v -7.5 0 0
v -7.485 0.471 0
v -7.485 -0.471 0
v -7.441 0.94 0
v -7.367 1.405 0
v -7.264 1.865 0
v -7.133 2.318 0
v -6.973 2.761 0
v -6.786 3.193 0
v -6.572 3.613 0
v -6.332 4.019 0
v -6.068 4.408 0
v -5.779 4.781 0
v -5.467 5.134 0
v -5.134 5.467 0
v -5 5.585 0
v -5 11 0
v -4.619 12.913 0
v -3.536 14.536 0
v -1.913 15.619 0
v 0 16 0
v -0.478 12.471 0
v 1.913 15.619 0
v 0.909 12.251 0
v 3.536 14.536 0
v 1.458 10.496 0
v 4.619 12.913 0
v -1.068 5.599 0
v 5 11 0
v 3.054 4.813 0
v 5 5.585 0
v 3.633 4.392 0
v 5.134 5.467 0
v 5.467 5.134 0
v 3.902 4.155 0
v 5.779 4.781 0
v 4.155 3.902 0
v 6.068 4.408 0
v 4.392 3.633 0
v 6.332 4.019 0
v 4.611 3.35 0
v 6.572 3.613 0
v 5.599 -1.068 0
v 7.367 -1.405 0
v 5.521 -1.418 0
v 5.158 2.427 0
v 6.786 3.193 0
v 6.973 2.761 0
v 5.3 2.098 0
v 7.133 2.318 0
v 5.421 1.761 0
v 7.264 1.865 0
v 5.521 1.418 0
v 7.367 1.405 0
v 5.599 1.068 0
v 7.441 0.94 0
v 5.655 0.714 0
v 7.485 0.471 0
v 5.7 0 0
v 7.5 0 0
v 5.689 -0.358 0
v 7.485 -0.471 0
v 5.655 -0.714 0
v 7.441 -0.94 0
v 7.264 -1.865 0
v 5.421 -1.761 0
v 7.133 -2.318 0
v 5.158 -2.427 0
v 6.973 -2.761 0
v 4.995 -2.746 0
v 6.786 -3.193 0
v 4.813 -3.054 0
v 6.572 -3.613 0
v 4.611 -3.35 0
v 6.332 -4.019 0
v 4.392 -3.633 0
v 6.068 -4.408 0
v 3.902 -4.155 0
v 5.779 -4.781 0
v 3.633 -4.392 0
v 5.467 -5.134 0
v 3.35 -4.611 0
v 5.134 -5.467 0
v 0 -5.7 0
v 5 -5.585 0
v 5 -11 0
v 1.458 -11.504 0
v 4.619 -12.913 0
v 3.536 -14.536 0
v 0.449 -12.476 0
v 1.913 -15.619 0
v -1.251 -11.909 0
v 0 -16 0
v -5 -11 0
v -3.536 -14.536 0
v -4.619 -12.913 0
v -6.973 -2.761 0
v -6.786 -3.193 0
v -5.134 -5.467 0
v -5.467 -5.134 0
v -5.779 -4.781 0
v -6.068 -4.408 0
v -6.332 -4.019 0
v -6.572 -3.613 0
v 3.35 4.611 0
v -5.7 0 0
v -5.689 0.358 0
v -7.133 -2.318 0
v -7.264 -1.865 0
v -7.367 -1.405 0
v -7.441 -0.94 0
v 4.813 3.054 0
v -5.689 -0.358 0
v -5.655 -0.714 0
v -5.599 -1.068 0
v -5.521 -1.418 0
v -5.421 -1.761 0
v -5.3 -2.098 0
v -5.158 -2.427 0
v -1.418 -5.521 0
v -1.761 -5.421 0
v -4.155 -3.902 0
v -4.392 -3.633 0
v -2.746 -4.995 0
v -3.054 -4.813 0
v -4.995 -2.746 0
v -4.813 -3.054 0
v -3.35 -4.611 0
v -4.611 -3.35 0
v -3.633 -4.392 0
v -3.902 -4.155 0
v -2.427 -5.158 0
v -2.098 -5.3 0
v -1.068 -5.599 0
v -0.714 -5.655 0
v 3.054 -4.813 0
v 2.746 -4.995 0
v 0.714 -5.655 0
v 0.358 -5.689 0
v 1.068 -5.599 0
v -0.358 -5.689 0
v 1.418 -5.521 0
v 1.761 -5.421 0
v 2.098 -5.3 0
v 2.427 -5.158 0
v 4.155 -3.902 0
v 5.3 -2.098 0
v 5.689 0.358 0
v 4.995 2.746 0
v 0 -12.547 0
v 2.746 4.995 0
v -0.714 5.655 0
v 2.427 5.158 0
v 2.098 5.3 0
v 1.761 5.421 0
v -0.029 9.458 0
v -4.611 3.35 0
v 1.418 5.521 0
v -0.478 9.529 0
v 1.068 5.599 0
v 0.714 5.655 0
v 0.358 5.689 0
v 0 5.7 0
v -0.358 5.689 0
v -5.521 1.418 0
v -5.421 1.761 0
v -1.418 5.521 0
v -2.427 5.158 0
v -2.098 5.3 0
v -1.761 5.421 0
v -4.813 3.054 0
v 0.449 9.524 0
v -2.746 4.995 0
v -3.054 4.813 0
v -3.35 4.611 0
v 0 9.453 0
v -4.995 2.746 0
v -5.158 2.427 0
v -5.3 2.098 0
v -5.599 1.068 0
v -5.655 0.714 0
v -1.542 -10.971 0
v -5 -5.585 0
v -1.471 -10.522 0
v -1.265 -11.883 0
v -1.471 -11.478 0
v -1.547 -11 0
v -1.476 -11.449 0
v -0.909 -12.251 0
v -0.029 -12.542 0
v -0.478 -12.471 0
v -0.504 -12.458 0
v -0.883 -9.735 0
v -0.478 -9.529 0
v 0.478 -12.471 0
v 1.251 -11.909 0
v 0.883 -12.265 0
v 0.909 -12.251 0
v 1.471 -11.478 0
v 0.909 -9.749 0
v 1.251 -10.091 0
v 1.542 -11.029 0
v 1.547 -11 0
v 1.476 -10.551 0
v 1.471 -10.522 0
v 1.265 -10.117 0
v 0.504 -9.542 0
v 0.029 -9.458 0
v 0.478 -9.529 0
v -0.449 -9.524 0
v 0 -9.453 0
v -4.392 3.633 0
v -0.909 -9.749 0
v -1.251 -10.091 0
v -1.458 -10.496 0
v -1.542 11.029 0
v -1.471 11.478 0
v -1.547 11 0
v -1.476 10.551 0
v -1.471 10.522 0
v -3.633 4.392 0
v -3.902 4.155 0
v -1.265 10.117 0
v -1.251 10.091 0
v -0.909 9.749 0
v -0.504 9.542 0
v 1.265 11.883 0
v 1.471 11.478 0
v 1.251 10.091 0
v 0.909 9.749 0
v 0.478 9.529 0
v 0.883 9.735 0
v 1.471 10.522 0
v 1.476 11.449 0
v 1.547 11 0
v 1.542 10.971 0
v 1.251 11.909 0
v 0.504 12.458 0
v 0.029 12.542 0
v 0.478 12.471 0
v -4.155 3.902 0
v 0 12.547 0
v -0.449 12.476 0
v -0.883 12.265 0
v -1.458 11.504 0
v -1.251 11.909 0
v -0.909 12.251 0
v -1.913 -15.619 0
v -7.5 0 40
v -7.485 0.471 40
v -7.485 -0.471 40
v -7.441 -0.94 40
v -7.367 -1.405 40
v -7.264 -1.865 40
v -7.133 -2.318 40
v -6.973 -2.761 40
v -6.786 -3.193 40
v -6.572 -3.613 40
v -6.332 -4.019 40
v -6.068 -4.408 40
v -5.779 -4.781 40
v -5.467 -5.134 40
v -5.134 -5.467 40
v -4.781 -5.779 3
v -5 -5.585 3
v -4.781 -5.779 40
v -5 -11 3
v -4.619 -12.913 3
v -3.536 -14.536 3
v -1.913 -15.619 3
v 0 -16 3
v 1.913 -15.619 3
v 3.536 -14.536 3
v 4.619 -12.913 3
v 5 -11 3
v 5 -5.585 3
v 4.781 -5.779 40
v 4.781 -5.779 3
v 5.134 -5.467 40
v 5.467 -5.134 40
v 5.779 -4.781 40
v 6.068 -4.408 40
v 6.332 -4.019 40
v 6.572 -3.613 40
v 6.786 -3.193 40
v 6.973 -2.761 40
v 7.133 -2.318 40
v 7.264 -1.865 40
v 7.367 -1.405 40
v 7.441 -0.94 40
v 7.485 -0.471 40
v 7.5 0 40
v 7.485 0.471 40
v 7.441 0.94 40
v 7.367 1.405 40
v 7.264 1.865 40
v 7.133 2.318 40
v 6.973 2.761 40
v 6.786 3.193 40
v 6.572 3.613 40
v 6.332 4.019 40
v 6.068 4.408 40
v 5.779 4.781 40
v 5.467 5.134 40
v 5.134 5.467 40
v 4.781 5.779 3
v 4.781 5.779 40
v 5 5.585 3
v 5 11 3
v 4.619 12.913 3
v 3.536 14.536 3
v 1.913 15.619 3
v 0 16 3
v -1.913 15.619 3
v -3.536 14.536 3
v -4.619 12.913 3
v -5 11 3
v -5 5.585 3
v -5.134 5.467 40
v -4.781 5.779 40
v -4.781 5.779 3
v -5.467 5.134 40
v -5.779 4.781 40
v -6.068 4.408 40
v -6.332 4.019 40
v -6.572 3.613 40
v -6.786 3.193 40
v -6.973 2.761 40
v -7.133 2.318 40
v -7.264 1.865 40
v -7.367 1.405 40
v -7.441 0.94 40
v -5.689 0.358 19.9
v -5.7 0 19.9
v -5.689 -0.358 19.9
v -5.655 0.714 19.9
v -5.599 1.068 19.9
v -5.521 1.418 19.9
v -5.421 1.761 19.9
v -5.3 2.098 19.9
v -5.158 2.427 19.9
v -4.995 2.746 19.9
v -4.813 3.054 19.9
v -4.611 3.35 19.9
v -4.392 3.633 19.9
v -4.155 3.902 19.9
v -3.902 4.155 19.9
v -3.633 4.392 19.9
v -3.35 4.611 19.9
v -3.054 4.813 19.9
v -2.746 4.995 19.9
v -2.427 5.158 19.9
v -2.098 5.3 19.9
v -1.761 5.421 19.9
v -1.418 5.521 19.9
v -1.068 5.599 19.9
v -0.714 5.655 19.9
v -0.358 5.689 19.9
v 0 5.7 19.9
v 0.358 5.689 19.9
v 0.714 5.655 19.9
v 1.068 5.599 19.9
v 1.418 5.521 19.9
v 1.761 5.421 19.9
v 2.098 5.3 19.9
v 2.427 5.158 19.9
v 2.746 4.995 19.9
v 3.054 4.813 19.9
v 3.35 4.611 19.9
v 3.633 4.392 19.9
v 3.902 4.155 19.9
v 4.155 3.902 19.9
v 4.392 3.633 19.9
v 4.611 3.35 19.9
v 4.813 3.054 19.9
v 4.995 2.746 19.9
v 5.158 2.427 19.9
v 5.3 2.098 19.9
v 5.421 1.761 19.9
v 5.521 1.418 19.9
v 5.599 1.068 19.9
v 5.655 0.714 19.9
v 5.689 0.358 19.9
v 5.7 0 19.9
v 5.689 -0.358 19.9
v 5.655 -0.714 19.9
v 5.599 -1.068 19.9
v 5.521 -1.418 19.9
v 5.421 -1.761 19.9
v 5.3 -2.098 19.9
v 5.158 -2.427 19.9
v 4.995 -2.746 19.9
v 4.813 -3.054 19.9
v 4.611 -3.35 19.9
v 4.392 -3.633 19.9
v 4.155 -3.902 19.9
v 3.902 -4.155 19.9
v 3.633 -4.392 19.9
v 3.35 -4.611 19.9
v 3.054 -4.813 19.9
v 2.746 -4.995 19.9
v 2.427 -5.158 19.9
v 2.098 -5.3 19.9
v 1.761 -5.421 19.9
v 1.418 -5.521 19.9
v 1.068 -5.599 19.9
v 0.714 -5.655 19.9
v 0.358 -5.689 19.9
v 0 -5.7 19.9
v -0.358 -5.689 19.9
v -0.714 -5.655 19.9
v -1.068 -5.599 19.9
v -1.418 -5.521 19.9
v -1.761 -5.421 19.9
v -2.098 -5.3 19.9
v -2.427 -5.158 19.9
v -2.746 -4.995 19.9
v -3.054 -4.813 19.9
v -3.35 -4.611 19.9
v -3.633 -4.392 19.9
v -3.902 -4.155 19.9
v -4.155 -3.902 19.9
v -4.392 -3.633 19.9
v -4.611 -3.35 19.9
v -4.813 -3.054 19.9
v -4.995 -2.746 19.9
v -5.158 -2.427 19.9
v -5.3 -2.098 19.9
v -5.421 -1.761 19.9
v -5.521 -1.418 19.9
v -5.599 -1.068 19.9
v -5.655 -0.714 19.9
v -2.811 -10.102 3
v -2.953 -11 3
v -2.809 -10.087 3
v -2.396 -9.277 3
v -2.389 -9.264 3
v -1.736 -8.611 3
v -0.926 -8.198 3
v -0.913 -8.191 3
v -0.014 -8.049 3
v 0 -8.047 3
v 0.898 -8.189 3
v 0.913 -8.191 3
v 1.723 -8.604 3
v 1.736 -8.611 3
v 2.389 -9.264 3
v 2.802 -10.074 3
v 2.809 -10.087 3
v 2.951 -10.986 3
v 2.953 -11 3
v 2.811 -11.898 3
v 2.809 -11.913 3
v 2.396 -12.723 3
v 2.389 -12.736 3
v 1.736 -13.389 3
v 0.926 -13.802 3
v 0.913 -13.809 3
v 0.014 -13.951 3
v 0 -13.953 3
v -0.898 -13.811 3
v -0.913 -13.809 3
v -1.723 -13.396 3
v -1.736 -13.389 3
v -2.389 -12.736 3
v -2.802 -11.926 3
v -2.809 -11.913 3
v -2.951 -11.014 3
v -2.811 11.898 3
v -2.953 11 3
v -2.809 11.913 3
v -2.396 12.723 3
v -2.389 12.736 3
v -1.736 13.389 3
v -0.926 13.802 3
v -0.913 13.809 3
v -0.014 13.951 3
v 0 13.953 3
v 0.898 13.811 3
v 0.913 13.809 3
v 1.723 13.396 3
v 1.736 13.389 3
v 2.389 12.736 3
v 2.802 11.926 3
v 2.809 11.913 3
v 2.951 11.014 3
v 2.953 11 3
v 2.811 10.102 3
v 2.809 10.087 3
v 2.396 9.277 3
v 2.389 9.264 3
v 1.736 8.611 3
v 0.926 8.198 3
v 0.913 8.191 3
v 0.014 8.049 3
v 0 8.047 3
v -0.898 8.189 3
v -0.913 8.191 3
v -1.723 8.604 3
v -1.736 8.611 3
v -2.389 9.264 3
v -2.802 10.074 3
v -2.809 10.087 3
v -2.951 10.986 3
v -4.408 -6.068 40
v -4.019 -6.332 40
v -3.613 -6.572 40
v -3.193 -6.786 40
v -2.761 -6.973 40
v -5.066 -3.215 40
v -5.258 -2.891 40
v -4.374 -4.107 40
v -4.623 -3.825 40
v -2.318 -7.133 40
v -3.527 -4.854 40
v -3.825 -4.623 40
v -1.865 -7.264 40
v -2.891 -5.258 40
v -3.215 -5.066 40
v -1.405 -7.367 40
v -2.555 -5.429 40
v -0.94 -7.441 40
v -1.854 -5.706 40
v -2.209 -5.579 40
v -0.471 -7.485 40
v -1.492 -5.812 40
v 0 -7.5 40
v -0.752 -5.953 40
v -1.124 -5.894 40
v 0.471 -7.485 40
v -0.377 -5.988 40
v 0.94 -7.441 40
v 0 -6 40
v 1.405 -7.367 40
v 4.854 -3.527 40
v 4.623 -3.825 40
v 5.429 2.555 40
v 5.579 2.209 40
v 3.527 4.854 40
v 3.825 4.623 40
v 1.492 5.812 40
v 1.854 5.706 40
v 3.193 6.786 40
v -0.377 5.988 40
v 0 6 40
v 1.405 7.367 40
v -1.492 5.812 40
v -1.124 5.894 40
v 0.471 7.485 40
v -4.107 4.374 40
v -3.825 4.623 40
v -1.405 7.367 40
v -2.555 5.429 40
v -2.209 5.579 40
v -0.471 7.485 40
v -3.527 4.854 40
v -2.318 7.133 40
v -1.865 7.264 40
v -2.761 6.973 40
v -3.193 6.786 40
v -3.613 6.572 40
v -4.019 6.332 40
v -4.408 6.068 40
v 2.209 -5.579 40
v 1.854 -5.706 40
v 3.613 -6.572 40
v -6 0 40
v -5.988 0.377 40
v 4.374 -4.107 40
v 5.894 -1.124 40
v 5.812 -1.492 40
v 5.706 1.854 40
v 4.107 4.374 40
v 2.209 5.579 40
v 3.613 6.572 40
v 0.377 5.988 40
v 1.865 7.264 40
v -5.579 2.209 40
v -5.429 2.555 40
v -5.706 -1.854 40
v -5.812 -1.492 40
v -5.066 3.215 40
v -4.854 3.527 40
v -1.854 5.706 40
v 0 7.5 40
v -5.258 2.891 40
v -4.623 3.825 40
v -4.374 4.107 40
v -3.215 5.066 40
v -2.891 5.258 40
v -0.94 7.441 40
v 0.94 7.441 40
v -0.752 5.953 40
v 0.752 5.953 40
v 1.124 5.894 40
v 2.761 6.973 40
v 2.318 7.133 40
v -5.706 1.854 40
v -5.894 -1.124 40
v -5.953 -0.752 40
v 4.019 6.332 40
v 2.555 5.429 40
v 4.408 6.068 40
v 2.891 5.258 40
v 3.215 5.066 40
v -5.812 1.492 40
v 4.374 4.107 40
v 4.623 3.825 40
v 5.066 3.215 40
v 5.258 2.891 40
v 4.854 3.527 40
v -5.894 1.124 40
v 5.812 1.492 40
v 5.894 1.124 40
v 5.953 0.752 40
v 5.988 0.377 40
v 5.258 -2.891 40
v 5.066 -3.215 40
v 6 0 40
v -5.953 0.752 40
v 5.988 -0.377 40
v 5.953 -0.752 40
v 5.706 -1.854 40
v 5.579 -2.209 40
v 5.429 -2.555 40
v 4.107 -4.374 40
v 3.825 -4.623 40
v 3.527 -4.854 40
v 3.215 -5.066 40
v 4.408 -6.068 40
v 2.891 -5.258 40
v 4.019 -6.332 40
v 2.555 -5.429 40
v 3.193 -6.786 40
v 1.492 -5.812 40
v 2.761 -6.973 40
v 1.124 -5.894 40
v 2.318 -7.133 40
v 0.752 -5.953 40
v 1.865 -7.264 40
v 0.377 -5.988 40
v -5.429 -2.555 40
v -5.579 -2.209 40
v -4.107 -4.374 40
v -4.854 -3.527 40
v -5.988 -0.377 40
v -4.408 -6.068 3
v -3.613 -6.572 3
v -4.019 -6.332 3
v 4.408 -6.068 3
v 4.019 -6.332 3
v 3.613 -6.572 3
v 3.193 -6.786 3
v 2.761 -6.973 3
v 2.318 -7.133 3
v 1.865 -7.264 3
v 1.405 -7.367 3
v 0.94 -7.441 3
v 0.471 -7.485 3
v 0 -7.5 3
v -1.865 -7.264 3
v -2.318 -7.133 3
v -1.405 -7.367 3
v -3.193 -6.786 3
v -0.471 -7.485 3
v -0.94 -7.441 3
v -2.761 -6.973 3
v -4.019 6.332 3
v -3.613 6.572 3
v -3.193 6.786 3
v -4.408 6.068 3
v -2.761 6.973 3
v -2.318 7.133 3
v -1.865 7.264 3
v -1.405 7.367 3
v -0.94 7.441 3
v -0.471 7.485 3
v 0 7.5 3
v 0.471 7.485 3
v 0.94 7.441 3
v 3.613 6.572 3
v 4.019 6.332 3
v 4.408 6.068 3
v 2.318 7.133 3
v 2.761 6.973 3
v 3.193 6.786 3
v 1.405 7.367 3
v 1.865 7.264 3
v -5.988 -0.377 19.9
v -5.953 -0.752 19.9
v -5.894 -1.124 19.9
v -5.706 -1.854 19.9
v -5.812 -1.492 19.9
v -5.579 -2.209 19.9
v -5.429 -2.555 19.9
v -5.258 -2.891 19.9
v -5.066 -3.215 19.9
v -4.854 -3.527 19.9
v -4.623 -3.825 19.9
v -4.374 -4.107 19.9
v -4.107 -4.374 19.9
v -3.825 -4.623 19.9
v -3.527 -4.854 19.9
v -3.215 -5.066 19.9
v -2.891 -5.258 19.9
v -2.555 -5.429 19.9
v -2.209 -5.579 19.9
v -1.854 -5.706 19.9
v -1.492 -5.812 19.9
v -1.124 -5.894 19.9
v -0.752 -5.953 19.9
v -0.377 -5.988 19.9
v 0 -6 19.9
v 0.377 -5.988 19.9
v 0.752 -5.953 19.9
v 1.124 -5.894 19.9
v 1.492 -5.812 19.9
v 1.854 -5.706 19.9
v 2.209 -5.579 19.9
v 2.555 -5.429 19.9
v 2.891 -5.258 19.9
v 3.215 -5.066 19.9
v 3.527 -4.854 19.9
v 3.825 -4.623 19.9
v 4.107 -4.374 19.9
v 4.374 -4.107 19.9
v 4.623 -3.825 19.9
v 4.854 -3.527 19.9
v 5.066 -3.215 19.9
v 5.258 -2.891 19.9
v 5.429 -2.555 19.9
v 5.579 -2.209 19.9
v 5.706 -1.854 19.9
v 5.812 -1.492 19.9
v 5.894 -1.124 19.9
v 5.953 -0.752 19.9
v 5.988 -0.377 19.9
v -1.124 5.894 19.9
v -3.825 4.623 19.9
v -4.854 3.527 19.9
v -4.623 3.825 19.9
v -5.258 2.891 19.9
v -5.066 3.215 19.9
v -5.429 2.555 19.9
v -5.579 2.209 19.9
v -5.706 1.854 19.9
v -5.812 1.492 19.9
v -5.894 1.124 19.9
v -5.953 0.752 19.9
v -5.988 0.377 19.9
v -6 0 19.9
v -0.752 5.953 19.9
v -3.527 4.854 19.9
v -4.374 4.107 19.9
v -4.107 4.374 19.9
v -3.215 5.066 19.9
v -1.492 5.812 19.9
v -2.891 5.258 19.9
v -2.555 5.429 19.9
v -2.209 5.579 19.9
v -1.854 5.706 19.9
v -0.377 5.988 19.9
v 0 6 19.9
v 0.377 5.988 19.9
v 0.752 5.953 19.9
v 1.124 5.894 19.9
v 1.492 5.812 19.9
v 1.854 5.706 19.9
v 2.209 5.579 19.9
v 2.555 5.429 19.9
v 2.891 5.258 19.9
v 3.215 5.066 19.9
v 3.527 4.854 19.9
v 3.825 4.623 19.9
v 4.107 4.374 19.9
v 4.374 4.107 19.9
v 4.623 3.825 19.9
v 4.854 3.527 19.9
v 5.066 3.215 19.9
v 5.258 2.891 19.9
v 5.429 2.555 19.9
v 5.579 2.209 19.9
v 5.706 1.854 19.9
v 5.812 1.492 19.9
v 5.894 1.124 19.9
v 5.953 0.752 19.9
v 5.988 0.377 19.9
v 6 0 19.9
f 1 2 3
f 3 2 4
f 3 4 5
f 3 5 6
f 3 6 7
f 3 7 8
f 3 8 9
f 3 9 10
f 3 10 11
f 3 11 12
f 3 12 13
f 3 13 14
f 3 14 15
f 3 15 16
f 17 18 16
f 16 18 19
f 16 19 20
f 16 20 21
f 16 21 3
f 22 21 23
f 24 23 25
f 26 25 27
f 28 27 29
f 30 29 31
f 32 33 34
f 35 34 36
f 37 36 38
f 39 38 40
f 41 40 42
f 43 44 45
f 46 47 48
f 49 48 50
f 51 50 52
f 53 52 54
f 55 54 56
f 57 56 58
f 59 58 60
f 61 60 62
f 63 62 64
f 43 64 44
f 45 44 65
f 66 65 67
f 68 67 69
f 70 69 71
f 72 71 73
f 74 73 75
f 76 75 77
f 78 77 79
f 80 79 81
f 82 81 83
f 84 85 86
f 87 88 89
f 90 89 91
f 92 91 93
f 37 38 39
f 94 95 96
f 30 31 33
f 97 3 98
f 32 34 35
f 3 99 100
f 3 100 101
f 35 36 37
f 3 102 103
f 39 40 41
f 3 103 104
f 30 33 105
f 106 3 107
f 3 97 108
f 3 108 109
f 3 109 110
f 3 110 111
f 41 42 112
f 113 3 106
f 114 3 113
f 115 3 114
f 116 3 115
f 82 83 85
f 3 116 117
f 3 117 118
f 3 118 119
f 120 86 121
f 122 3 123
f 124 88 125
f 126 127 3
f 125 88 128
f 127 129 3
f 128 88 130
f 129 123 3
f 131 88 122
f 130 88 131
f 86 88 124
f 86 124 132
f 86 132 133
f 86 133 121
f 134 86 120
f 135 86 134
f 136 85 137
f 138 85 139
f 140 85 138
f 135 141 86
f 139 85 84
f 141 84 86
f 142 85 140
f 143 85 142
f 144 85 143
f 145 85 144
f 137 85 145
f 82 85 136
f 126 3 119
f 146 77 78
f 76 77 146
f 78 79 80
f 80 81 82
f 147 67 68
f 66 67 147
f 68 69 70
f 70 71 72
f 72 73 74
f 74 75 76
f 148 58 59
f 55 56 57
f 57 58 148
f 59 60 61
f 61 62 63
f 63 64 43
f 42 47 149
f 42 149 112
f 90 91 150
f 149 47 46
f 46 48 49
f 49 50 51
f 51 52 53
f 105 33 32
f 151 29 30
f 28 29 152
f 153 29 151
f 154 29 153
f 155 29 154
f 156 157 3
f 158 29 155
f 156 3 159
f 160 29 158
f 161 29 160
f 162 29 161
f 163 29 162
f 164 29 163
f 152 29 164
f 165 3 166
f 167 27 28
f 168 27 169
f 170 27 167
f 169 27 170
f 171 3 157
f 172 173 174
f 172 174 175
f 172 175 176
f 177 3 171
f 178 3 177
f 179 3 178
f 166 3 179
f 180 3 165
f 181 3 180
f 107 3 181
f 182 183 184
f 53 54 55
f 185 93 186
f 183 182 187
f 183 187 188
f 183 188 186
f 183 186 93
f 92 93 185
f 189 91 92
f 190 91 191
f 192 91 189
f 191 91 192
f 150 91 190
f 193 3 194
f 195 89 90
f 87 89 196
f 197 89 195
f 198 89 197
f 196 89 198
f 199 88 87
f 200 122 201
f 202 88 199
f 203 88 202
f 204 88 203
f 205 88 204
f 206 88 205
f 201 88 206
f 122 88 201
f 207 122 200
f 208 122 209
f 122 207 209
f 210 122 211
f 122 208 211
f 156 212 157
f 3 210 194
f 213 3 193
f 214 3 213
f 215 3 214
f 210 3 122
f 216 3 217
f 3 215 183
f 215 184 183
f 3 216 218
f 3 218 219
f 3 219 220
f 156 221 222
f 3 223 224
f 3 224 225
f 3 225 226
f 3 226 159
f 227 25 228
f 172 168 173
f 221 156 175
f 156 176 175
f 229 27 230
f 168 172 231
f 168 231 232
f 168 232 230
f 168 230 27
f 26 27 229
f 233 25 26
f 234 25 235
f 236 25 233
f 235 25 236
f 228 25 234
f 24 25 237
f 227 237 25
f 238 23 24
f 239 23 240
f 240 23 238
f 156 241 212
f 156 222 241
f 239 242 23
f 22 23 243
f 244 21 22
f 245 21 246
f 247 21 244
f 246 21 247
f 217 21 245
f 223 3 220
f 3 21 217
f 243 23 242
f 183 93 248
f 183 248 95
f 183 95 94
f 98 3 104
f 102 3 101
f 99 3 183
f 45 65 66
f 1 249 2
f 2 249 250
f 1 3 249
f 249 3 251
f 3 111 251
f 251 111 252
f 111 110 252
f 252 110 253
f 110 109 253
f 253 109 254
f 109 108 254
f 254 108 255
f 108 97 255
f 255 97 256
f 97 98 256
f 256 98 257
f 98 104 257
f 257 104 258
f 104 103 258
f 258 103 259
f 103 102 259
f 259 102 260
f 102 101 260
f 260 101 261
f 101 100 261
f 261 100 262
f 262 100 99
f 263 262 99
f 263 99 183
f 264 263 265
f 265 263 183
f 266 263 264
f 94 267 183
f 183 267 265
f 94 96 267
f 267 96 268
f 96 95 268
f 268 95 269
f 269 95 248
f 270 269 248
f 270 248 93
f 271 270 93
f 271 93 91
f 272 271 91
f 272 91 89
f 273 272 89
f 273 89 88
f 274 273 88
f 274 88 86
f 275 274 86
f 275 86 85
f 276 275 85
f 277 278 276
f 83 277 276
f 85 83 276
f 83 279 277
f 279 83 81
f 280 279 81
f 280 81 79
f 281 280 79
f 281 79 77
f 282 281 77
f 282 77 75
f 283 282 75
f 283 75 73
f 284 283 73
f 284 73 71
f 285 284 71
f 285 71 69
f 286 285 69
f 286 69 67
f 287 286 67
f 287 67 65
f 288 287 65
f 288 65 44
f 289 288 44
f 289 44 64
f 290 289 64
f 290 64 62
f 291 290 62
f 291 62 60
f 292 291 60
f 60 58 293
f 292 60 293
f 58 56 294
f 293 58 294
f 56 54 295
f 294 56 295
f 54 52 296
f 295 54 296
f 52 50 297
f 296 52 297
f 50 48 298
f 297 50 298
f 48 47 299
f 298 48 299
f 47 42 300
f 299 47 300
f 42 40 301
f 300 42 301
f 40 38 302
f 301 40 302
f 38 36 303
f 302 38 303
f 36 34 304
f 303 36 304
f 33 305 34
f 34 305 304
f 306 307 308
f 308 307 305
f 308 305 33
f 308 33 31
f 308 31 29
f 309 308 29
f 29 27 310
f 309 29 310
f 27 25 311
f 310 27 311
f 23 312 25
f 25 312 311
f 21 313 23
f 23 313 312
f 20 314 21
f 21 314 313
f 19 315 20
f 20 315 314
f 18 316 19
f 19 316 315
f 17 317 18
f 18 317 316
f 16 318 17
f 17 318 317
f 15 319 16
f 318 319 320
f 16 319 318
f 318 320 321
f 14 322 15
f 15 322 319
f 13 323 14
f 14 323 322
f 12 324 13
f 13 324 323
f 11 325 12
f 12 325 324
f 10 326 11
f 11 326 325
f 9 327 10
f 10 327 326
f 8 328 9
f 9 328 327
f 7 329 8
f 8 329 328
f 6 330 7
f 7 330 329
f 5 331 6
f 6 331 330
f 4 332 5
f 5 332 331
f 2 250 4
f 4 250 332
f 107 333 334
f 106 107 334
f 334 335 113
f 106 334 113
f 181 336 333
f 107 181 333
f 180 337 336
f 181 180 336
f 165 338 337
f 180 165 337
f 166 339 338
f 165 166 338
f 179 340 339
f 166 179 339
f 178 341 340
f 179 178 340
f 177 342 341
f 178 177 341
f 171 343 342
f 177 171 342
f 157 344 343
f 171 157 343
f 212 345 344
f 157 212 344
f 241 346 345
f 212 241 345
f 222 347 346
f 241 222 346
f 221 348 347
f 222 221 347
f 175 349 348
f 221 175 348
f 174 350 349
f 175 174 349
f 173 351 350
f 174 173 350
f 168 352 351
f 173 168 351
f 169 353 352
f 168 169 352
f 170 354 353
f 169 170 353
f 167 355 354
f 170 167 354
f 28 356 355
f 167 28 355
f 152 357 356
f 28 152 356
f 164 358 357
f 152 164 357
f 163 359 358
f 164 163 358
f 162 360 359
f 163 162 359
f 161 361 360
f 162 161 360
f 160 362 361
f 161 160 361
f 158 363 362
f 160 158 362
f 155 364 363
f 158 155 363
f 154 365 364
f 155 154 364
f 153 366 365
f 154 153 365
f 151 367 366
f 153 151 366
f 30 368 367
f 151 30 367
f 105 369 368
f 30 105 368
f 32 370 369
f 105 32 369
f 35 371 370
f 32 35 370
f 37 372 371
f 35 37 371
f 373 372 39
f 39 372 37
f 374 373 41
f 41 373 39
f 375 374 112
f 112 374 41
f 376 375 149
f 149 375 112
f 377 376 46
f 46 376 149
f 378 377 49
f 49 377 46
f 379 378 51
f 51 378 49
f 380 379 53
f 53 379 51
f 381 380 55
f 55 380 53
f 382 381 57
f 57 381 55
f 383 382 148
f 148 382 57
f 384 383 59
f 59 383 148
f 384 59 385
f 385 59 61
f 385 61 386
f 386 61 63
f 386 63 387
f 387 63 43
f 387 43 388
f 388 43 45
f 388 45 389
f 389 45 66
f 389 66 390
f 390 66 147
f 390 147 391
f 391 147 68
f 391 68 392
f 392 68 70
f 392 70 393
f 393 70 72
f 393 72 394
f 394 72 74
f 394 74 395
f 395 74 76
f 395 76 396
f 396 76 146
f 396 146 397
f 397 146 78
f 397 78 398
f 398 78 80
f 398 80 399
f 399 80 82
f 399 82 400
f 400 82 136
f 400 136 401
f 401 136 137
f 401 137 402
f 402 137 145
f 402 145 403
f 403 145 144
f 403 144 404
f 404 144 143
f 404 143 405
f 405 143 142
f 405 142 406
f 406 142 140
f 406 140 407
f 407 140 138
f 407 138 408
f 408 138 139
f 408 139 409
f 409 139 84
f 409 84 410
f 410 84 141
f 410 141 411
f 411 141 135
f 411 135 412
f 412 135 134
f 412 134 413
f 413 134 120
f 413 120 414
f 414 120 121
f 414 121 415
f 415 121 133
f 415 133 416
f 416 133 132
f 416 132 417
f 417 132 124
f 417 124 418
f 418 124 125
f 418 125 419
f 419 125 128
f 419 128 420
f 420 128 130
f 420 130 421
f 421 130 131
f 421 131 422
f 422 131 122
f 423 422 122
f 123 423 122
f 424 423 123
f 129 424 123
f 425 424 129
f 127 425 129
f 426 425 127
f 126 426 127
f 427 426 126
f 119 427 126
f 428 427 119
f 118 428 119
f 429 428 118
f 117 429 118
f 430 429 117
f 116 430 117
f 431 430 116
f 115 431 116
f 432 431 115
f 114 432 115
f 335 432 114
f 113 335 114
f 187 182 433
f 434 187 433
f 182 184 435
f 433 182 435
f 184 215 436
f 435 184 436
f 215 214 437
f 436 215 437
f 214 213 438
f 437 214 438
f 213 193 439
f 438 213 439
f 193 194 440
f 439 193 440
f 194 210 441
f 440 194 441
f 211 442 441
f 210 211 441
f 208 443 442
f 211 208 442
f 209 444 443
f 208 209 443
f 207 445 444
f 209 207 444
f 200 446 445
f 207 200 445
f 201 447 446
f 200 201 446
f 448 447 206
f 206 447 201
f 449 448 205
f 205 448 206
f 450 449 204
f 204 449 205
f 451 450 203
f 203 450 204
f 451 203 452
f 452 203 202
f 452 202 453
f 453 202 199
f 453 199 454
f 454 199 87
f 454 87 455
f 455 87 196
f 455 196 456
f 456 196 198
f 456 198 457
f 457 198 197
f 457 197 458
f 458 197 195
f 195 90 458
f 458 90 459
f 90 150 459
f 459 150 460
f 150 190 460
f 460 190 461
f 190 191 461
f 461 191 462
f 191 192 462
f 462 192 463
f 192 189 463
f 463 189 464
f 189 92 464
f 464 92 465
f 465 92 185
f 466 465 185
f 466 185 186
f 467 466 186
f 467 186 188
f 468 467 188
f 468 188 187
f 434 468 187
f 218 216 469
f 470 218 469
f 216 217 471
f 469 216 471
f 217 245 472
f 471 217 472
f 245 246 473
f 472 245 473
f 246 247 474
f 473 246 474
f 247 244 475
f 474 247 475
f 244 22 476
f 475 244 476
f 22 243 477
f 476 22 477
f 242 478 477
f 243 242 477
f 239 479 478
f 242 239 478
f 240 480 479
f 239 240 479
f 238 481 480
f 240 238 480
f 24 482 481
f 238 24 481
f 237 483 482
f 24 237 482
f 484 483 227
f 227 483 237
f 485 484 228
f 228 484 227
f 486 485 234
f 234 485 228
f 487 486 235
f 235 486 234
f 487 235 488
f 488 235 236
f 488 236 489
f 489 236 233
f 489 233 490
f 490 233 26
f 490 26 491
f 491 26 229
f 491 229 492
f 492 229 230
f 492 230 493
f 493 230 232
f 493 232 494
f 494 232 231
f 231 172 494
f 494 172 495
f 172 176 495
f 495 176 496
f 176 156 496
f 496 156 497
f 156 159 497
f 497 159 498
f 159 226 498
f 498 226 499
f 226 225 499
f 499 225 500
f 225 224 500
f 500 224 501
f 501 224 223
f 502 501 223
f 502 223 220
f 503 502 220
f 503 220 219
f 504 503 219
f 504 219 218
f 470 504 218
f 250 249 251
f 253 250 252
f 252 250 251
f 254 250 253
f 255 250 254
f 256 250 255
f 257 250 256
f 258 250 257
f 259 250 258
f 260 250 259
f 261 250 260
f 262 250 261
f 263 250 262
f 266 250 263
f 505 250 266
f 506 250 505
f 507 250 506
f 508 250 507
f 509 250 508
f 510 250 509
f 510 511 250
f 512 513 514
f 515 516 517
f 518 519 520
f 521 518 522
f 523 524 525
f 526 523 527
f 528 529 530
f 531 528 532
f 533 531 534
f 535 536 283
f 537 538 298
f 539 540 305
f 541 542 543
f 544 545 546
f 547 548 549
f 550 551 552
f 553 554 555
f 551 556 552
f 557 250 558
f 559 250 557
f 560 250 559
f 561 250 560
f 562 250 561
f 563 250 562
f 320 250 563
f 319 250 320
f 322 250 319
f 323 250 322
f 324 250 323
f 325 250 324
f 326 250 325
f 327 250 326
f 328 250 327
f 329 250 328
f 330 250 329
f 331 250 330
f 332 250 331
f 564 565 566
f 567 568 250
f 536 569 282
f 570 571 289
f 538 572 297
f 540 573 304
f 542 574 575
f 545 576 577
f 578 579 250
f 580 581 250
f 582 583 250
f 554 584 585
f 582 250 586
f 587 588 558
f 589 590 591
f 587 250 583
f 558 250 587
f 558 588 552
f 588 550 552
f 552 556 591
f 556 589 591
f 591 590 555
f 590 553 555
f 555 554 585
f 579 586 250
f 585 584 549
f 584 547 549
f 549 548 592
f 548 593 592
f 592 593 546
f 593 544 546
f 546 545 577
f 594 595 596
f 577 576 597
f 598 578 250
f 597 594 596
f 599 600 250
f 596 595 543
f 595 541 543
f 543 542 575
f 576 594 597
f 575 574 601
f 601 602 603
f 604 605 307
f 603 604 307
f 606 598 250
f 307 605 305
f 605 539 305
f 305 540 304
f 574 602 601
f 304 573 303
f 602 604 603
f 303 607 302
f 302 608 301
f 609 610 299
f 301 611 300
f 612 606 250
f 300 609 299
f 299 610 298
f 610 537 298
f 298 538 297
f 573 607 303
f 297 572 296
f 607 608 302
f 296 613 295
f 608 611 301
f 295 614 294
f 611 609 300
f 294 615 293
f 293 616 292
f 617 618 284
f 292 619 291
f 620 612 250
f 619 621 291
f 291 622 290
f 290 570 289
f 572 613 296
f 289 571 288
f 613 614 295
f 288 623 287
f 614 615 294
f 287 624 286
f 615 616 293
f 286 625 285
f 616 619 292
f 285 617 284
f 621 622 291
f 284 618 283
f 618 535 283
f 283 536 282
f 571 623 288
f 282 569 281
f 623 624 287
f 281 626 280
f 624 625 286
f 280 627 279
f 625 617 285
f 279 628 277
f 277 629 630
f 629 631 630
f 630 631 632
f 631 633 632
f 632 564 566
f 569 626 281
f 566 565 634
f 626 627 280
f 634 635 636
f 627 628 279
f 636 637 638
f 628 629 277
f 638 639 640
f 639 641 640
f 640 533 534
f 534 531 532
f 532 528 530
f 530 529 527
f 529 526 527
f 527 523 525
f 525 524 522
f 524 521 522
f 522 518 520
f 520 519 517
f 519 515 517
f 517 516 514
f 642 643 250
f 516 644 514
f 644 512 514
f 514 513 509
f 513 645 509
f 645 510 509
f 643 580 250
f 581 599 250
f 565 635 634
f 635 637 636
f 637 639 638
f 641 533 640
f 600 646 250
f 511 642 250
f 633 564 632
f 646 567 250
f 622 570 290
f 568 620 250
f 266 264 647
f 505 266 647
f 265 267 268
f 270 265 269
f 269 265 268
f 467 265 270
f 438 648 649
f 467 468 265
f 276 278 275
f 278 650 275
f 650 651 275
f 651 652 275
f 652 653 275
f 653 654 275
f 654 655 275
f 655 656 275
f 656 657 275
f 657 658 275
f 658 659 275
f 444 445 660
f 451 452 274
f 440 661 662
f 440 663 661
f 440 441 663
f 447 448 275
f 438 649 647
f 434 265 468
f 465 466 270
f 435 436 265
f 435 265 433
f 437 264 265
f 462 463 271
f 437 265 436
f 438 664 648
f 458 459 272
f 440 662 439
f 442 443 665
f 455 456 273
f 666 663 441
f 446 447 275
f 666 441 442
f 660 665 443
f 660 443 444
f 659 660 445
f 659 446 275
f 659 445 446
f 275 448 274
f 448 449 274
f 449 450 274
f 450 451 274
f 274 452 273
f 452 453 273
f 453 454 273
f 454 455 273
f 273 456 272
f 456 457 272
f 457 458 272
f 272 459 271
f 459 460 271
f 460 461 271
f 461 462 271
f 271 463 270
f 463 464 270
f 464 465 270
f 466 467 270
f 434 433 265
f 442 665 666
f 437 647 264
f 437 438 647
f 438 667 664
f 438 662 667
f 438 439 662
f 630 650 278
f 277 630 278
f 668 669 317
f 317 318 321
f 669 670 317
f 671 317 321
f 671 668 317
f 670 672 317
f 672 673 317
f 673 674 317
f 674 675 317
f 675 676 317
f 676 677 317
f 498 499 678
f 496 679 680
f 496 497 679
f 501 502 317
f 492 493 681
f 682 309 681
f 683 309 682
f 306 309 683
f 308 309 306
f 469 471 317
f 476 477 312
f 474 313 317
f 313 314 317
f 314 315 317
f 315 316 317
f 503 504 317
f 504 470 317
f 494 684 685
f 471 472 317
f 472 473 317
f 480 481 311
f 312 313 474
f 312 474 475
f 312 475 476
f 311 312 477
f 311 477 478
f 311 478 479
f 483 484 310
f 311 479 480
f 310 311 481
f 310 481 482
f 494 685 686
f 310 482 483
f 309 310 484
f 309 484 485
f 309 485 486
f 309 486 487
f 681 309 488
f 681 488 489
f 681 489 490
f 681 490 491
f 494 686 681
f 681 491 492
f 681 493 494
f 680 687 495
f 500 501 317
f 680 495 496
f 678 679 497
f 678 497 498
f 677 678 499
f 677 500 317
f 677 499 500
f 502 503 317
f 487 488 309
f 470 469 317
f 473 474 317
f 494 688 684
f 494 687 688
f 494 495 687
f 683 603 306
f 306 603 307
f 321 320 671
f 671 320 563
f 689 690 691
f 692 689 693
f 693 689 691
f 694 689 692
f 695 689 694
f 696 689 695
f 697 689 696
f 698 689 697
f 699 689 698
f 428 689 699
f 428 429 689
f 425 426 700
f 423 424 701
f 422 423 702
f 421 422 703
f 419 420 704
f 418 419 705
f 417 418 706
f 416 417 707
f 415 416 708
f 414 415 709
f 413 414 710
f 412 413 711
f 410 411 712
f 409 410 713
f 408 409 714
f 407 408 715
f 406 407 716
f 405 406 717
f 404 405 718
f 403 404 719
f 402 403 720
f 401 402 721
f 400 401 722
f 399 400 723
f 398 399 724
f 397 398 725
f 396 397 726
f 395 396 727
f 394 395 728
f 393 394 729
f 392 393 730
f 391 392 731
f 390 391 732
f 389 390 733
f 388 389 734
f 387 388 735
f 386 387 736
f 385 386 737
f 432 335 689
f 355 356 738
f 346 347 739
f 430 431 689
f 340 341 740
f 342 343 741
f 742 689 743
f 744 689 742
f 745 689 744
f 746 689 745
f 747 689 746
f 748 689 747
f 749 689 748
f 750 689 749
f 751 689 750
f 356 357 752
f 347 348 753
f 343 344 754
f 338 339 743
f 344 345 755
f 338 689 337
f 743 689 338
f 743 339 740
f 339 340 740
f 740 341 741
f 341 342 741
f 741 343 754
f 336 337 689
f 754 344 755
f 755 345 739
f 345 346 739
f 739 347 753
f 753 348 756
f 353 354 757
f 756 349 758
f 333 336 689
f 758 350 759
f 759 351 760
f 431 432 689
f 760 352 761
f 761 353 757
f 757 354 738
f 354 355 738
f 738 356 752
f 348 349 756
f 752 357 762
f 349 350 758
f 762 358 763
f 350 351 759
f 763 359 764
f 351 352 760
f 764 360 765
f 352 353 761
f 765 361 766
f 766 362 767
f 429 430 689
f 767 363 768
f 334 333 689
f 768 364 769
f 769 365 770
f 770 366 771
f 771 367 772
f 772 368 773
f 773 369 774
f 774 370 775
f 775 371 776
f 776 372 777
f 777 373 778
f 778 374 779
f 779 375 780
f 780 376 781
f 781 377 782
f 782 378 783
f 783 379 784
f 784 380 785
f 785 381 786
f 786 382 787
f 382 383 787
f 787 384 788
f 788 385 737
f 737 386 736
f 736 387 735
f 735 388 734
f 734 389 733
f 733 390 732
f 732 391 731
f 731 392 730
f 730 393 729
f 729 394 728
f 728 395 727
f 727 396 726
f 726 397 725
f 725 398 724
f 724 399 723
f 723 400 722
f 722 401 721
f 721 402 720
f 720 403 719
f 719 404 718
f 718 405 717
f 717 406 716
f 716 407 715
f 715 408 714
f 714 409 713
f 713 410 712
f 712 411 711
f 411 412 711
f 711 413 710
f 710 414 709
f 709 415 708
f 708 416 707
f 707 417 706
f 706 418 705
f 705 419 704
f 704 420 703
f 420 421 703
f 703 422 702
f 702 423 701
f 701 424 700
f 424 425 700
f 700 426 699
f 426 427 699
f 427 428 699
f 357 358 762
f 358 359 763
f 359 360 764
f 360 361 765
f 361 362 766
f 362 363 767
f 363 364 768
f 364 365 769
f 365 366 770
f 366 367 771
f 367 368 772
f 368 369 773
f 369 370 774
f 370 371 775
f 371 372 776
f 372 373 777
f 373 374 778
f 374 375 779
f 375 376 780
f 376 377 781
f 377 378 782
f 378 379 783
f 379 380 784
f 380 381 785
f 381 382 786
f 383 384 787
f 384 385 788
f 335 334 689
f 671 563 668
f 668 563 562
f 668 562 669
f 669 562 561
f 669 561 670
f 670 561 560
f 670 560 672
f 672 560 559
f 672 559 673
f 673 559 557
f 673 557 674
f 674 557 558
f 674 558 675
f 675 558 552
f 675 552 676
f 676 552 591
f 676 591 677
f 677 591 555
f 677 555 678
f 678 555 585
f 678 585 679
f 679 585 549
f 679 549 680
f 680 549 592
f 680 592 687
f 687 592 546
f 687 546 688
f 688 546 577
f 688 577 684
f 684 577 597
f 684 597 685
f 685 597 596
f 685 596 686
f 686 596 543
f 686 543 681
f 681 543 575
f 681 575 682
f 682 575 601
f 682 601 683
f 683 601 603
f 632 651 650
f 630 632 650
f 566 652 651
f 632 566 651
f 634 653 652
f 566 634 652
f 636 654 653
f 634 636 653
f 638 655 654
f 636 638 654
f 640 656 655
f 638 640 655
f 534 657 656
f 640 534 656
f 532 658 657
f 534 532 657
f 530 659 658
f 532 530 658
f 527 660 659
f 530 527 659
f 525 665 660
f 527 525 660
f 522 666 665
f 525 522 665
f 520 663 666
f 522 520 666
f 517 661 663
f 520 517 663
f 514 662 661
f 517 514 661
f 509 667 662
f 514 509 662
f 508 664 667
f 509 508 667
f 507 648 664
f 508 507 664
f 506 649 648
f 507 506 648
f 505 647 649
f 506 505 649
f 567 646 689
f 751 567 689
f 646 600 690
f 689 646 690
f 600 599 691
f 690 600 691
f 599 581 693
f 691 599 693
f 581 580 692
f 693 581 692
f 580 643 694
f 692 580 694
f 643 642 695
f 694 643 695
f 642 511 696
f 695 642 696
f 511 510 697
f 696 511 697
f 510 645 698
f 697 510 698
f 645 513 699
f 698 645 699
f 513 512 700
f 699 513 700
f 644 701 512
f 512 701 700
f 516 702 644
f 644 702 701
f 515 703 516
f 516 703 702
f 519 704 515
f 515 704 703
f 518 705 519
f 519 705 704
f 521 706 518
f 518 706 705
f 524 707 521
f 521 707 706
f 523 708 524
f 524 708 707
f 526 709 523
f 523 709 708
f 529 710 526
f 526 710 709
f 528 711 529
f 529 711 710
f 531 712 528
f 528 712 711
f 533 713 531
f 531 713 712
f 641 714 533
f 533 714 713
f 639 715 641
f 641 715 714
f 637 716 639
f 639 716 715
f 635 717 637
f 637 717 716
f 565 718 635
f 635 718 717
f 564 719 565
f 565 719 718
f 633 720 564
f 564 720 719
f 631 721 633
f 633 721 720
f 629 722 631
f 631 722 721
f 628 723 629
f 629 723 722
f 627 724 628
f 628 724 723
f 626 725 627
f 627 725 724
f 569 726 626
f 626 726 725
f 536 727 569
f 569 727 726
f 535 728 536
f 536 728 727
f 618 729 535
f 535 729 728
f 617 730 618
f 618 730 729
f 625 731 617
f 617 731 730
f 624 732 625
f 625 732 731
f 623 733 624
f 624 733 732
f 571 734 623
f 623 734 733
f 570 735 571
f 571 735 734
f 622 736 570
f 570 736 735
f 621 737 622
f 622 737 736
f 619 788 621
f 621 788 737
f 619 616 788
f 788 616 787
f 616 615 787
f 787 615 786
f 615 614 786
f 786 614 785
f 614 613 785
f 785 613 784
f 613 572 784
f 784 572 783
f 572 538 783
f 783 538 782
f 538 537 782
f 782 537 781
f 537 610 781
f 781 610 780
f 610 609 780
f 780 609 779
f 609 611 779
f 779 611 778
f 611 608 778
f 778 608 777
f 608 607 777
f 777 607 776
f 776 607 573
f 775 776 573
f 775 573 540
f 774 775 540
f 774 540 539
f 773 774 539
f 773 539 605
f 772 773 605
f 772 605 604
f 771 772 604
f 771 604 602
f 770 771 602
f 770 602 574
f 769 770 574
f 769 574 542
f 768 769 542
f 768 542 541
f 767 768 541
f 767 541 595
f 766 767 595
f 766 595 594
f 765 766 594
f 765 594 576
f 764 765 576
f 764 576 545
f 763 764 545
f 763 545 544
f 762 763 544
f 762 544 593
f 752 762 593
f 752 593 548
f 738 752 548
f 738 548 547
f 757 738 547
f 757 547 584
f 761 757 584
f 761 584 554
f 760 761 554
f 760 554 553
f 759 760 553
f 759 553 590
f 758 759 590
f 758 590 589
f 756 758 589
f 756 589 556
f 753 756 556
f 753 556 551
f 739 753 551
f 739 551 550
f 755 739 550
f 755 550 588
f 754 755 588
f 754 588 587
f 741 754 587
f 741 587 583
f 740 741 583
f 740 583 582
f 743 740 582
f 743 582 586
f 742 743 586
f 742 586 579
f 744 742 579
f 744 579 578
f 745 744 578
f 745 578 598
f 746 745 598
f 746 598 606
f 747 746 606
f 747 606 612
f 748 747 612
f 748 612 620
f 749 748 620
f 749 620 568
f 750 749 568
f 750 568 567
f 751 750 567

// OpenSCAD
difference()
{
	union()
	{
		cylinder(40,7.5,7.5,$fn=100);
		translate([0,-11,0]){cylinder(3,5,5);}
		translate([0,11,0]){cylinder(3,5,5);}
		translate([-5,-11,0]){cube([10,22,3]);}
}

	translate([0,0,-.1]){cylinder(20.1,5.7,5.7,$fn=100);}
	translate([0,0,19.9]){cylinder(20.2,6,6,$fn=100);}
	translate([0,-11,-.1]){cylinder(3.2,1.5,3,$fn=20);}
	translate([0,11,-.1]){cylinder(3.2,1.5,3,$fn=20);}
}
